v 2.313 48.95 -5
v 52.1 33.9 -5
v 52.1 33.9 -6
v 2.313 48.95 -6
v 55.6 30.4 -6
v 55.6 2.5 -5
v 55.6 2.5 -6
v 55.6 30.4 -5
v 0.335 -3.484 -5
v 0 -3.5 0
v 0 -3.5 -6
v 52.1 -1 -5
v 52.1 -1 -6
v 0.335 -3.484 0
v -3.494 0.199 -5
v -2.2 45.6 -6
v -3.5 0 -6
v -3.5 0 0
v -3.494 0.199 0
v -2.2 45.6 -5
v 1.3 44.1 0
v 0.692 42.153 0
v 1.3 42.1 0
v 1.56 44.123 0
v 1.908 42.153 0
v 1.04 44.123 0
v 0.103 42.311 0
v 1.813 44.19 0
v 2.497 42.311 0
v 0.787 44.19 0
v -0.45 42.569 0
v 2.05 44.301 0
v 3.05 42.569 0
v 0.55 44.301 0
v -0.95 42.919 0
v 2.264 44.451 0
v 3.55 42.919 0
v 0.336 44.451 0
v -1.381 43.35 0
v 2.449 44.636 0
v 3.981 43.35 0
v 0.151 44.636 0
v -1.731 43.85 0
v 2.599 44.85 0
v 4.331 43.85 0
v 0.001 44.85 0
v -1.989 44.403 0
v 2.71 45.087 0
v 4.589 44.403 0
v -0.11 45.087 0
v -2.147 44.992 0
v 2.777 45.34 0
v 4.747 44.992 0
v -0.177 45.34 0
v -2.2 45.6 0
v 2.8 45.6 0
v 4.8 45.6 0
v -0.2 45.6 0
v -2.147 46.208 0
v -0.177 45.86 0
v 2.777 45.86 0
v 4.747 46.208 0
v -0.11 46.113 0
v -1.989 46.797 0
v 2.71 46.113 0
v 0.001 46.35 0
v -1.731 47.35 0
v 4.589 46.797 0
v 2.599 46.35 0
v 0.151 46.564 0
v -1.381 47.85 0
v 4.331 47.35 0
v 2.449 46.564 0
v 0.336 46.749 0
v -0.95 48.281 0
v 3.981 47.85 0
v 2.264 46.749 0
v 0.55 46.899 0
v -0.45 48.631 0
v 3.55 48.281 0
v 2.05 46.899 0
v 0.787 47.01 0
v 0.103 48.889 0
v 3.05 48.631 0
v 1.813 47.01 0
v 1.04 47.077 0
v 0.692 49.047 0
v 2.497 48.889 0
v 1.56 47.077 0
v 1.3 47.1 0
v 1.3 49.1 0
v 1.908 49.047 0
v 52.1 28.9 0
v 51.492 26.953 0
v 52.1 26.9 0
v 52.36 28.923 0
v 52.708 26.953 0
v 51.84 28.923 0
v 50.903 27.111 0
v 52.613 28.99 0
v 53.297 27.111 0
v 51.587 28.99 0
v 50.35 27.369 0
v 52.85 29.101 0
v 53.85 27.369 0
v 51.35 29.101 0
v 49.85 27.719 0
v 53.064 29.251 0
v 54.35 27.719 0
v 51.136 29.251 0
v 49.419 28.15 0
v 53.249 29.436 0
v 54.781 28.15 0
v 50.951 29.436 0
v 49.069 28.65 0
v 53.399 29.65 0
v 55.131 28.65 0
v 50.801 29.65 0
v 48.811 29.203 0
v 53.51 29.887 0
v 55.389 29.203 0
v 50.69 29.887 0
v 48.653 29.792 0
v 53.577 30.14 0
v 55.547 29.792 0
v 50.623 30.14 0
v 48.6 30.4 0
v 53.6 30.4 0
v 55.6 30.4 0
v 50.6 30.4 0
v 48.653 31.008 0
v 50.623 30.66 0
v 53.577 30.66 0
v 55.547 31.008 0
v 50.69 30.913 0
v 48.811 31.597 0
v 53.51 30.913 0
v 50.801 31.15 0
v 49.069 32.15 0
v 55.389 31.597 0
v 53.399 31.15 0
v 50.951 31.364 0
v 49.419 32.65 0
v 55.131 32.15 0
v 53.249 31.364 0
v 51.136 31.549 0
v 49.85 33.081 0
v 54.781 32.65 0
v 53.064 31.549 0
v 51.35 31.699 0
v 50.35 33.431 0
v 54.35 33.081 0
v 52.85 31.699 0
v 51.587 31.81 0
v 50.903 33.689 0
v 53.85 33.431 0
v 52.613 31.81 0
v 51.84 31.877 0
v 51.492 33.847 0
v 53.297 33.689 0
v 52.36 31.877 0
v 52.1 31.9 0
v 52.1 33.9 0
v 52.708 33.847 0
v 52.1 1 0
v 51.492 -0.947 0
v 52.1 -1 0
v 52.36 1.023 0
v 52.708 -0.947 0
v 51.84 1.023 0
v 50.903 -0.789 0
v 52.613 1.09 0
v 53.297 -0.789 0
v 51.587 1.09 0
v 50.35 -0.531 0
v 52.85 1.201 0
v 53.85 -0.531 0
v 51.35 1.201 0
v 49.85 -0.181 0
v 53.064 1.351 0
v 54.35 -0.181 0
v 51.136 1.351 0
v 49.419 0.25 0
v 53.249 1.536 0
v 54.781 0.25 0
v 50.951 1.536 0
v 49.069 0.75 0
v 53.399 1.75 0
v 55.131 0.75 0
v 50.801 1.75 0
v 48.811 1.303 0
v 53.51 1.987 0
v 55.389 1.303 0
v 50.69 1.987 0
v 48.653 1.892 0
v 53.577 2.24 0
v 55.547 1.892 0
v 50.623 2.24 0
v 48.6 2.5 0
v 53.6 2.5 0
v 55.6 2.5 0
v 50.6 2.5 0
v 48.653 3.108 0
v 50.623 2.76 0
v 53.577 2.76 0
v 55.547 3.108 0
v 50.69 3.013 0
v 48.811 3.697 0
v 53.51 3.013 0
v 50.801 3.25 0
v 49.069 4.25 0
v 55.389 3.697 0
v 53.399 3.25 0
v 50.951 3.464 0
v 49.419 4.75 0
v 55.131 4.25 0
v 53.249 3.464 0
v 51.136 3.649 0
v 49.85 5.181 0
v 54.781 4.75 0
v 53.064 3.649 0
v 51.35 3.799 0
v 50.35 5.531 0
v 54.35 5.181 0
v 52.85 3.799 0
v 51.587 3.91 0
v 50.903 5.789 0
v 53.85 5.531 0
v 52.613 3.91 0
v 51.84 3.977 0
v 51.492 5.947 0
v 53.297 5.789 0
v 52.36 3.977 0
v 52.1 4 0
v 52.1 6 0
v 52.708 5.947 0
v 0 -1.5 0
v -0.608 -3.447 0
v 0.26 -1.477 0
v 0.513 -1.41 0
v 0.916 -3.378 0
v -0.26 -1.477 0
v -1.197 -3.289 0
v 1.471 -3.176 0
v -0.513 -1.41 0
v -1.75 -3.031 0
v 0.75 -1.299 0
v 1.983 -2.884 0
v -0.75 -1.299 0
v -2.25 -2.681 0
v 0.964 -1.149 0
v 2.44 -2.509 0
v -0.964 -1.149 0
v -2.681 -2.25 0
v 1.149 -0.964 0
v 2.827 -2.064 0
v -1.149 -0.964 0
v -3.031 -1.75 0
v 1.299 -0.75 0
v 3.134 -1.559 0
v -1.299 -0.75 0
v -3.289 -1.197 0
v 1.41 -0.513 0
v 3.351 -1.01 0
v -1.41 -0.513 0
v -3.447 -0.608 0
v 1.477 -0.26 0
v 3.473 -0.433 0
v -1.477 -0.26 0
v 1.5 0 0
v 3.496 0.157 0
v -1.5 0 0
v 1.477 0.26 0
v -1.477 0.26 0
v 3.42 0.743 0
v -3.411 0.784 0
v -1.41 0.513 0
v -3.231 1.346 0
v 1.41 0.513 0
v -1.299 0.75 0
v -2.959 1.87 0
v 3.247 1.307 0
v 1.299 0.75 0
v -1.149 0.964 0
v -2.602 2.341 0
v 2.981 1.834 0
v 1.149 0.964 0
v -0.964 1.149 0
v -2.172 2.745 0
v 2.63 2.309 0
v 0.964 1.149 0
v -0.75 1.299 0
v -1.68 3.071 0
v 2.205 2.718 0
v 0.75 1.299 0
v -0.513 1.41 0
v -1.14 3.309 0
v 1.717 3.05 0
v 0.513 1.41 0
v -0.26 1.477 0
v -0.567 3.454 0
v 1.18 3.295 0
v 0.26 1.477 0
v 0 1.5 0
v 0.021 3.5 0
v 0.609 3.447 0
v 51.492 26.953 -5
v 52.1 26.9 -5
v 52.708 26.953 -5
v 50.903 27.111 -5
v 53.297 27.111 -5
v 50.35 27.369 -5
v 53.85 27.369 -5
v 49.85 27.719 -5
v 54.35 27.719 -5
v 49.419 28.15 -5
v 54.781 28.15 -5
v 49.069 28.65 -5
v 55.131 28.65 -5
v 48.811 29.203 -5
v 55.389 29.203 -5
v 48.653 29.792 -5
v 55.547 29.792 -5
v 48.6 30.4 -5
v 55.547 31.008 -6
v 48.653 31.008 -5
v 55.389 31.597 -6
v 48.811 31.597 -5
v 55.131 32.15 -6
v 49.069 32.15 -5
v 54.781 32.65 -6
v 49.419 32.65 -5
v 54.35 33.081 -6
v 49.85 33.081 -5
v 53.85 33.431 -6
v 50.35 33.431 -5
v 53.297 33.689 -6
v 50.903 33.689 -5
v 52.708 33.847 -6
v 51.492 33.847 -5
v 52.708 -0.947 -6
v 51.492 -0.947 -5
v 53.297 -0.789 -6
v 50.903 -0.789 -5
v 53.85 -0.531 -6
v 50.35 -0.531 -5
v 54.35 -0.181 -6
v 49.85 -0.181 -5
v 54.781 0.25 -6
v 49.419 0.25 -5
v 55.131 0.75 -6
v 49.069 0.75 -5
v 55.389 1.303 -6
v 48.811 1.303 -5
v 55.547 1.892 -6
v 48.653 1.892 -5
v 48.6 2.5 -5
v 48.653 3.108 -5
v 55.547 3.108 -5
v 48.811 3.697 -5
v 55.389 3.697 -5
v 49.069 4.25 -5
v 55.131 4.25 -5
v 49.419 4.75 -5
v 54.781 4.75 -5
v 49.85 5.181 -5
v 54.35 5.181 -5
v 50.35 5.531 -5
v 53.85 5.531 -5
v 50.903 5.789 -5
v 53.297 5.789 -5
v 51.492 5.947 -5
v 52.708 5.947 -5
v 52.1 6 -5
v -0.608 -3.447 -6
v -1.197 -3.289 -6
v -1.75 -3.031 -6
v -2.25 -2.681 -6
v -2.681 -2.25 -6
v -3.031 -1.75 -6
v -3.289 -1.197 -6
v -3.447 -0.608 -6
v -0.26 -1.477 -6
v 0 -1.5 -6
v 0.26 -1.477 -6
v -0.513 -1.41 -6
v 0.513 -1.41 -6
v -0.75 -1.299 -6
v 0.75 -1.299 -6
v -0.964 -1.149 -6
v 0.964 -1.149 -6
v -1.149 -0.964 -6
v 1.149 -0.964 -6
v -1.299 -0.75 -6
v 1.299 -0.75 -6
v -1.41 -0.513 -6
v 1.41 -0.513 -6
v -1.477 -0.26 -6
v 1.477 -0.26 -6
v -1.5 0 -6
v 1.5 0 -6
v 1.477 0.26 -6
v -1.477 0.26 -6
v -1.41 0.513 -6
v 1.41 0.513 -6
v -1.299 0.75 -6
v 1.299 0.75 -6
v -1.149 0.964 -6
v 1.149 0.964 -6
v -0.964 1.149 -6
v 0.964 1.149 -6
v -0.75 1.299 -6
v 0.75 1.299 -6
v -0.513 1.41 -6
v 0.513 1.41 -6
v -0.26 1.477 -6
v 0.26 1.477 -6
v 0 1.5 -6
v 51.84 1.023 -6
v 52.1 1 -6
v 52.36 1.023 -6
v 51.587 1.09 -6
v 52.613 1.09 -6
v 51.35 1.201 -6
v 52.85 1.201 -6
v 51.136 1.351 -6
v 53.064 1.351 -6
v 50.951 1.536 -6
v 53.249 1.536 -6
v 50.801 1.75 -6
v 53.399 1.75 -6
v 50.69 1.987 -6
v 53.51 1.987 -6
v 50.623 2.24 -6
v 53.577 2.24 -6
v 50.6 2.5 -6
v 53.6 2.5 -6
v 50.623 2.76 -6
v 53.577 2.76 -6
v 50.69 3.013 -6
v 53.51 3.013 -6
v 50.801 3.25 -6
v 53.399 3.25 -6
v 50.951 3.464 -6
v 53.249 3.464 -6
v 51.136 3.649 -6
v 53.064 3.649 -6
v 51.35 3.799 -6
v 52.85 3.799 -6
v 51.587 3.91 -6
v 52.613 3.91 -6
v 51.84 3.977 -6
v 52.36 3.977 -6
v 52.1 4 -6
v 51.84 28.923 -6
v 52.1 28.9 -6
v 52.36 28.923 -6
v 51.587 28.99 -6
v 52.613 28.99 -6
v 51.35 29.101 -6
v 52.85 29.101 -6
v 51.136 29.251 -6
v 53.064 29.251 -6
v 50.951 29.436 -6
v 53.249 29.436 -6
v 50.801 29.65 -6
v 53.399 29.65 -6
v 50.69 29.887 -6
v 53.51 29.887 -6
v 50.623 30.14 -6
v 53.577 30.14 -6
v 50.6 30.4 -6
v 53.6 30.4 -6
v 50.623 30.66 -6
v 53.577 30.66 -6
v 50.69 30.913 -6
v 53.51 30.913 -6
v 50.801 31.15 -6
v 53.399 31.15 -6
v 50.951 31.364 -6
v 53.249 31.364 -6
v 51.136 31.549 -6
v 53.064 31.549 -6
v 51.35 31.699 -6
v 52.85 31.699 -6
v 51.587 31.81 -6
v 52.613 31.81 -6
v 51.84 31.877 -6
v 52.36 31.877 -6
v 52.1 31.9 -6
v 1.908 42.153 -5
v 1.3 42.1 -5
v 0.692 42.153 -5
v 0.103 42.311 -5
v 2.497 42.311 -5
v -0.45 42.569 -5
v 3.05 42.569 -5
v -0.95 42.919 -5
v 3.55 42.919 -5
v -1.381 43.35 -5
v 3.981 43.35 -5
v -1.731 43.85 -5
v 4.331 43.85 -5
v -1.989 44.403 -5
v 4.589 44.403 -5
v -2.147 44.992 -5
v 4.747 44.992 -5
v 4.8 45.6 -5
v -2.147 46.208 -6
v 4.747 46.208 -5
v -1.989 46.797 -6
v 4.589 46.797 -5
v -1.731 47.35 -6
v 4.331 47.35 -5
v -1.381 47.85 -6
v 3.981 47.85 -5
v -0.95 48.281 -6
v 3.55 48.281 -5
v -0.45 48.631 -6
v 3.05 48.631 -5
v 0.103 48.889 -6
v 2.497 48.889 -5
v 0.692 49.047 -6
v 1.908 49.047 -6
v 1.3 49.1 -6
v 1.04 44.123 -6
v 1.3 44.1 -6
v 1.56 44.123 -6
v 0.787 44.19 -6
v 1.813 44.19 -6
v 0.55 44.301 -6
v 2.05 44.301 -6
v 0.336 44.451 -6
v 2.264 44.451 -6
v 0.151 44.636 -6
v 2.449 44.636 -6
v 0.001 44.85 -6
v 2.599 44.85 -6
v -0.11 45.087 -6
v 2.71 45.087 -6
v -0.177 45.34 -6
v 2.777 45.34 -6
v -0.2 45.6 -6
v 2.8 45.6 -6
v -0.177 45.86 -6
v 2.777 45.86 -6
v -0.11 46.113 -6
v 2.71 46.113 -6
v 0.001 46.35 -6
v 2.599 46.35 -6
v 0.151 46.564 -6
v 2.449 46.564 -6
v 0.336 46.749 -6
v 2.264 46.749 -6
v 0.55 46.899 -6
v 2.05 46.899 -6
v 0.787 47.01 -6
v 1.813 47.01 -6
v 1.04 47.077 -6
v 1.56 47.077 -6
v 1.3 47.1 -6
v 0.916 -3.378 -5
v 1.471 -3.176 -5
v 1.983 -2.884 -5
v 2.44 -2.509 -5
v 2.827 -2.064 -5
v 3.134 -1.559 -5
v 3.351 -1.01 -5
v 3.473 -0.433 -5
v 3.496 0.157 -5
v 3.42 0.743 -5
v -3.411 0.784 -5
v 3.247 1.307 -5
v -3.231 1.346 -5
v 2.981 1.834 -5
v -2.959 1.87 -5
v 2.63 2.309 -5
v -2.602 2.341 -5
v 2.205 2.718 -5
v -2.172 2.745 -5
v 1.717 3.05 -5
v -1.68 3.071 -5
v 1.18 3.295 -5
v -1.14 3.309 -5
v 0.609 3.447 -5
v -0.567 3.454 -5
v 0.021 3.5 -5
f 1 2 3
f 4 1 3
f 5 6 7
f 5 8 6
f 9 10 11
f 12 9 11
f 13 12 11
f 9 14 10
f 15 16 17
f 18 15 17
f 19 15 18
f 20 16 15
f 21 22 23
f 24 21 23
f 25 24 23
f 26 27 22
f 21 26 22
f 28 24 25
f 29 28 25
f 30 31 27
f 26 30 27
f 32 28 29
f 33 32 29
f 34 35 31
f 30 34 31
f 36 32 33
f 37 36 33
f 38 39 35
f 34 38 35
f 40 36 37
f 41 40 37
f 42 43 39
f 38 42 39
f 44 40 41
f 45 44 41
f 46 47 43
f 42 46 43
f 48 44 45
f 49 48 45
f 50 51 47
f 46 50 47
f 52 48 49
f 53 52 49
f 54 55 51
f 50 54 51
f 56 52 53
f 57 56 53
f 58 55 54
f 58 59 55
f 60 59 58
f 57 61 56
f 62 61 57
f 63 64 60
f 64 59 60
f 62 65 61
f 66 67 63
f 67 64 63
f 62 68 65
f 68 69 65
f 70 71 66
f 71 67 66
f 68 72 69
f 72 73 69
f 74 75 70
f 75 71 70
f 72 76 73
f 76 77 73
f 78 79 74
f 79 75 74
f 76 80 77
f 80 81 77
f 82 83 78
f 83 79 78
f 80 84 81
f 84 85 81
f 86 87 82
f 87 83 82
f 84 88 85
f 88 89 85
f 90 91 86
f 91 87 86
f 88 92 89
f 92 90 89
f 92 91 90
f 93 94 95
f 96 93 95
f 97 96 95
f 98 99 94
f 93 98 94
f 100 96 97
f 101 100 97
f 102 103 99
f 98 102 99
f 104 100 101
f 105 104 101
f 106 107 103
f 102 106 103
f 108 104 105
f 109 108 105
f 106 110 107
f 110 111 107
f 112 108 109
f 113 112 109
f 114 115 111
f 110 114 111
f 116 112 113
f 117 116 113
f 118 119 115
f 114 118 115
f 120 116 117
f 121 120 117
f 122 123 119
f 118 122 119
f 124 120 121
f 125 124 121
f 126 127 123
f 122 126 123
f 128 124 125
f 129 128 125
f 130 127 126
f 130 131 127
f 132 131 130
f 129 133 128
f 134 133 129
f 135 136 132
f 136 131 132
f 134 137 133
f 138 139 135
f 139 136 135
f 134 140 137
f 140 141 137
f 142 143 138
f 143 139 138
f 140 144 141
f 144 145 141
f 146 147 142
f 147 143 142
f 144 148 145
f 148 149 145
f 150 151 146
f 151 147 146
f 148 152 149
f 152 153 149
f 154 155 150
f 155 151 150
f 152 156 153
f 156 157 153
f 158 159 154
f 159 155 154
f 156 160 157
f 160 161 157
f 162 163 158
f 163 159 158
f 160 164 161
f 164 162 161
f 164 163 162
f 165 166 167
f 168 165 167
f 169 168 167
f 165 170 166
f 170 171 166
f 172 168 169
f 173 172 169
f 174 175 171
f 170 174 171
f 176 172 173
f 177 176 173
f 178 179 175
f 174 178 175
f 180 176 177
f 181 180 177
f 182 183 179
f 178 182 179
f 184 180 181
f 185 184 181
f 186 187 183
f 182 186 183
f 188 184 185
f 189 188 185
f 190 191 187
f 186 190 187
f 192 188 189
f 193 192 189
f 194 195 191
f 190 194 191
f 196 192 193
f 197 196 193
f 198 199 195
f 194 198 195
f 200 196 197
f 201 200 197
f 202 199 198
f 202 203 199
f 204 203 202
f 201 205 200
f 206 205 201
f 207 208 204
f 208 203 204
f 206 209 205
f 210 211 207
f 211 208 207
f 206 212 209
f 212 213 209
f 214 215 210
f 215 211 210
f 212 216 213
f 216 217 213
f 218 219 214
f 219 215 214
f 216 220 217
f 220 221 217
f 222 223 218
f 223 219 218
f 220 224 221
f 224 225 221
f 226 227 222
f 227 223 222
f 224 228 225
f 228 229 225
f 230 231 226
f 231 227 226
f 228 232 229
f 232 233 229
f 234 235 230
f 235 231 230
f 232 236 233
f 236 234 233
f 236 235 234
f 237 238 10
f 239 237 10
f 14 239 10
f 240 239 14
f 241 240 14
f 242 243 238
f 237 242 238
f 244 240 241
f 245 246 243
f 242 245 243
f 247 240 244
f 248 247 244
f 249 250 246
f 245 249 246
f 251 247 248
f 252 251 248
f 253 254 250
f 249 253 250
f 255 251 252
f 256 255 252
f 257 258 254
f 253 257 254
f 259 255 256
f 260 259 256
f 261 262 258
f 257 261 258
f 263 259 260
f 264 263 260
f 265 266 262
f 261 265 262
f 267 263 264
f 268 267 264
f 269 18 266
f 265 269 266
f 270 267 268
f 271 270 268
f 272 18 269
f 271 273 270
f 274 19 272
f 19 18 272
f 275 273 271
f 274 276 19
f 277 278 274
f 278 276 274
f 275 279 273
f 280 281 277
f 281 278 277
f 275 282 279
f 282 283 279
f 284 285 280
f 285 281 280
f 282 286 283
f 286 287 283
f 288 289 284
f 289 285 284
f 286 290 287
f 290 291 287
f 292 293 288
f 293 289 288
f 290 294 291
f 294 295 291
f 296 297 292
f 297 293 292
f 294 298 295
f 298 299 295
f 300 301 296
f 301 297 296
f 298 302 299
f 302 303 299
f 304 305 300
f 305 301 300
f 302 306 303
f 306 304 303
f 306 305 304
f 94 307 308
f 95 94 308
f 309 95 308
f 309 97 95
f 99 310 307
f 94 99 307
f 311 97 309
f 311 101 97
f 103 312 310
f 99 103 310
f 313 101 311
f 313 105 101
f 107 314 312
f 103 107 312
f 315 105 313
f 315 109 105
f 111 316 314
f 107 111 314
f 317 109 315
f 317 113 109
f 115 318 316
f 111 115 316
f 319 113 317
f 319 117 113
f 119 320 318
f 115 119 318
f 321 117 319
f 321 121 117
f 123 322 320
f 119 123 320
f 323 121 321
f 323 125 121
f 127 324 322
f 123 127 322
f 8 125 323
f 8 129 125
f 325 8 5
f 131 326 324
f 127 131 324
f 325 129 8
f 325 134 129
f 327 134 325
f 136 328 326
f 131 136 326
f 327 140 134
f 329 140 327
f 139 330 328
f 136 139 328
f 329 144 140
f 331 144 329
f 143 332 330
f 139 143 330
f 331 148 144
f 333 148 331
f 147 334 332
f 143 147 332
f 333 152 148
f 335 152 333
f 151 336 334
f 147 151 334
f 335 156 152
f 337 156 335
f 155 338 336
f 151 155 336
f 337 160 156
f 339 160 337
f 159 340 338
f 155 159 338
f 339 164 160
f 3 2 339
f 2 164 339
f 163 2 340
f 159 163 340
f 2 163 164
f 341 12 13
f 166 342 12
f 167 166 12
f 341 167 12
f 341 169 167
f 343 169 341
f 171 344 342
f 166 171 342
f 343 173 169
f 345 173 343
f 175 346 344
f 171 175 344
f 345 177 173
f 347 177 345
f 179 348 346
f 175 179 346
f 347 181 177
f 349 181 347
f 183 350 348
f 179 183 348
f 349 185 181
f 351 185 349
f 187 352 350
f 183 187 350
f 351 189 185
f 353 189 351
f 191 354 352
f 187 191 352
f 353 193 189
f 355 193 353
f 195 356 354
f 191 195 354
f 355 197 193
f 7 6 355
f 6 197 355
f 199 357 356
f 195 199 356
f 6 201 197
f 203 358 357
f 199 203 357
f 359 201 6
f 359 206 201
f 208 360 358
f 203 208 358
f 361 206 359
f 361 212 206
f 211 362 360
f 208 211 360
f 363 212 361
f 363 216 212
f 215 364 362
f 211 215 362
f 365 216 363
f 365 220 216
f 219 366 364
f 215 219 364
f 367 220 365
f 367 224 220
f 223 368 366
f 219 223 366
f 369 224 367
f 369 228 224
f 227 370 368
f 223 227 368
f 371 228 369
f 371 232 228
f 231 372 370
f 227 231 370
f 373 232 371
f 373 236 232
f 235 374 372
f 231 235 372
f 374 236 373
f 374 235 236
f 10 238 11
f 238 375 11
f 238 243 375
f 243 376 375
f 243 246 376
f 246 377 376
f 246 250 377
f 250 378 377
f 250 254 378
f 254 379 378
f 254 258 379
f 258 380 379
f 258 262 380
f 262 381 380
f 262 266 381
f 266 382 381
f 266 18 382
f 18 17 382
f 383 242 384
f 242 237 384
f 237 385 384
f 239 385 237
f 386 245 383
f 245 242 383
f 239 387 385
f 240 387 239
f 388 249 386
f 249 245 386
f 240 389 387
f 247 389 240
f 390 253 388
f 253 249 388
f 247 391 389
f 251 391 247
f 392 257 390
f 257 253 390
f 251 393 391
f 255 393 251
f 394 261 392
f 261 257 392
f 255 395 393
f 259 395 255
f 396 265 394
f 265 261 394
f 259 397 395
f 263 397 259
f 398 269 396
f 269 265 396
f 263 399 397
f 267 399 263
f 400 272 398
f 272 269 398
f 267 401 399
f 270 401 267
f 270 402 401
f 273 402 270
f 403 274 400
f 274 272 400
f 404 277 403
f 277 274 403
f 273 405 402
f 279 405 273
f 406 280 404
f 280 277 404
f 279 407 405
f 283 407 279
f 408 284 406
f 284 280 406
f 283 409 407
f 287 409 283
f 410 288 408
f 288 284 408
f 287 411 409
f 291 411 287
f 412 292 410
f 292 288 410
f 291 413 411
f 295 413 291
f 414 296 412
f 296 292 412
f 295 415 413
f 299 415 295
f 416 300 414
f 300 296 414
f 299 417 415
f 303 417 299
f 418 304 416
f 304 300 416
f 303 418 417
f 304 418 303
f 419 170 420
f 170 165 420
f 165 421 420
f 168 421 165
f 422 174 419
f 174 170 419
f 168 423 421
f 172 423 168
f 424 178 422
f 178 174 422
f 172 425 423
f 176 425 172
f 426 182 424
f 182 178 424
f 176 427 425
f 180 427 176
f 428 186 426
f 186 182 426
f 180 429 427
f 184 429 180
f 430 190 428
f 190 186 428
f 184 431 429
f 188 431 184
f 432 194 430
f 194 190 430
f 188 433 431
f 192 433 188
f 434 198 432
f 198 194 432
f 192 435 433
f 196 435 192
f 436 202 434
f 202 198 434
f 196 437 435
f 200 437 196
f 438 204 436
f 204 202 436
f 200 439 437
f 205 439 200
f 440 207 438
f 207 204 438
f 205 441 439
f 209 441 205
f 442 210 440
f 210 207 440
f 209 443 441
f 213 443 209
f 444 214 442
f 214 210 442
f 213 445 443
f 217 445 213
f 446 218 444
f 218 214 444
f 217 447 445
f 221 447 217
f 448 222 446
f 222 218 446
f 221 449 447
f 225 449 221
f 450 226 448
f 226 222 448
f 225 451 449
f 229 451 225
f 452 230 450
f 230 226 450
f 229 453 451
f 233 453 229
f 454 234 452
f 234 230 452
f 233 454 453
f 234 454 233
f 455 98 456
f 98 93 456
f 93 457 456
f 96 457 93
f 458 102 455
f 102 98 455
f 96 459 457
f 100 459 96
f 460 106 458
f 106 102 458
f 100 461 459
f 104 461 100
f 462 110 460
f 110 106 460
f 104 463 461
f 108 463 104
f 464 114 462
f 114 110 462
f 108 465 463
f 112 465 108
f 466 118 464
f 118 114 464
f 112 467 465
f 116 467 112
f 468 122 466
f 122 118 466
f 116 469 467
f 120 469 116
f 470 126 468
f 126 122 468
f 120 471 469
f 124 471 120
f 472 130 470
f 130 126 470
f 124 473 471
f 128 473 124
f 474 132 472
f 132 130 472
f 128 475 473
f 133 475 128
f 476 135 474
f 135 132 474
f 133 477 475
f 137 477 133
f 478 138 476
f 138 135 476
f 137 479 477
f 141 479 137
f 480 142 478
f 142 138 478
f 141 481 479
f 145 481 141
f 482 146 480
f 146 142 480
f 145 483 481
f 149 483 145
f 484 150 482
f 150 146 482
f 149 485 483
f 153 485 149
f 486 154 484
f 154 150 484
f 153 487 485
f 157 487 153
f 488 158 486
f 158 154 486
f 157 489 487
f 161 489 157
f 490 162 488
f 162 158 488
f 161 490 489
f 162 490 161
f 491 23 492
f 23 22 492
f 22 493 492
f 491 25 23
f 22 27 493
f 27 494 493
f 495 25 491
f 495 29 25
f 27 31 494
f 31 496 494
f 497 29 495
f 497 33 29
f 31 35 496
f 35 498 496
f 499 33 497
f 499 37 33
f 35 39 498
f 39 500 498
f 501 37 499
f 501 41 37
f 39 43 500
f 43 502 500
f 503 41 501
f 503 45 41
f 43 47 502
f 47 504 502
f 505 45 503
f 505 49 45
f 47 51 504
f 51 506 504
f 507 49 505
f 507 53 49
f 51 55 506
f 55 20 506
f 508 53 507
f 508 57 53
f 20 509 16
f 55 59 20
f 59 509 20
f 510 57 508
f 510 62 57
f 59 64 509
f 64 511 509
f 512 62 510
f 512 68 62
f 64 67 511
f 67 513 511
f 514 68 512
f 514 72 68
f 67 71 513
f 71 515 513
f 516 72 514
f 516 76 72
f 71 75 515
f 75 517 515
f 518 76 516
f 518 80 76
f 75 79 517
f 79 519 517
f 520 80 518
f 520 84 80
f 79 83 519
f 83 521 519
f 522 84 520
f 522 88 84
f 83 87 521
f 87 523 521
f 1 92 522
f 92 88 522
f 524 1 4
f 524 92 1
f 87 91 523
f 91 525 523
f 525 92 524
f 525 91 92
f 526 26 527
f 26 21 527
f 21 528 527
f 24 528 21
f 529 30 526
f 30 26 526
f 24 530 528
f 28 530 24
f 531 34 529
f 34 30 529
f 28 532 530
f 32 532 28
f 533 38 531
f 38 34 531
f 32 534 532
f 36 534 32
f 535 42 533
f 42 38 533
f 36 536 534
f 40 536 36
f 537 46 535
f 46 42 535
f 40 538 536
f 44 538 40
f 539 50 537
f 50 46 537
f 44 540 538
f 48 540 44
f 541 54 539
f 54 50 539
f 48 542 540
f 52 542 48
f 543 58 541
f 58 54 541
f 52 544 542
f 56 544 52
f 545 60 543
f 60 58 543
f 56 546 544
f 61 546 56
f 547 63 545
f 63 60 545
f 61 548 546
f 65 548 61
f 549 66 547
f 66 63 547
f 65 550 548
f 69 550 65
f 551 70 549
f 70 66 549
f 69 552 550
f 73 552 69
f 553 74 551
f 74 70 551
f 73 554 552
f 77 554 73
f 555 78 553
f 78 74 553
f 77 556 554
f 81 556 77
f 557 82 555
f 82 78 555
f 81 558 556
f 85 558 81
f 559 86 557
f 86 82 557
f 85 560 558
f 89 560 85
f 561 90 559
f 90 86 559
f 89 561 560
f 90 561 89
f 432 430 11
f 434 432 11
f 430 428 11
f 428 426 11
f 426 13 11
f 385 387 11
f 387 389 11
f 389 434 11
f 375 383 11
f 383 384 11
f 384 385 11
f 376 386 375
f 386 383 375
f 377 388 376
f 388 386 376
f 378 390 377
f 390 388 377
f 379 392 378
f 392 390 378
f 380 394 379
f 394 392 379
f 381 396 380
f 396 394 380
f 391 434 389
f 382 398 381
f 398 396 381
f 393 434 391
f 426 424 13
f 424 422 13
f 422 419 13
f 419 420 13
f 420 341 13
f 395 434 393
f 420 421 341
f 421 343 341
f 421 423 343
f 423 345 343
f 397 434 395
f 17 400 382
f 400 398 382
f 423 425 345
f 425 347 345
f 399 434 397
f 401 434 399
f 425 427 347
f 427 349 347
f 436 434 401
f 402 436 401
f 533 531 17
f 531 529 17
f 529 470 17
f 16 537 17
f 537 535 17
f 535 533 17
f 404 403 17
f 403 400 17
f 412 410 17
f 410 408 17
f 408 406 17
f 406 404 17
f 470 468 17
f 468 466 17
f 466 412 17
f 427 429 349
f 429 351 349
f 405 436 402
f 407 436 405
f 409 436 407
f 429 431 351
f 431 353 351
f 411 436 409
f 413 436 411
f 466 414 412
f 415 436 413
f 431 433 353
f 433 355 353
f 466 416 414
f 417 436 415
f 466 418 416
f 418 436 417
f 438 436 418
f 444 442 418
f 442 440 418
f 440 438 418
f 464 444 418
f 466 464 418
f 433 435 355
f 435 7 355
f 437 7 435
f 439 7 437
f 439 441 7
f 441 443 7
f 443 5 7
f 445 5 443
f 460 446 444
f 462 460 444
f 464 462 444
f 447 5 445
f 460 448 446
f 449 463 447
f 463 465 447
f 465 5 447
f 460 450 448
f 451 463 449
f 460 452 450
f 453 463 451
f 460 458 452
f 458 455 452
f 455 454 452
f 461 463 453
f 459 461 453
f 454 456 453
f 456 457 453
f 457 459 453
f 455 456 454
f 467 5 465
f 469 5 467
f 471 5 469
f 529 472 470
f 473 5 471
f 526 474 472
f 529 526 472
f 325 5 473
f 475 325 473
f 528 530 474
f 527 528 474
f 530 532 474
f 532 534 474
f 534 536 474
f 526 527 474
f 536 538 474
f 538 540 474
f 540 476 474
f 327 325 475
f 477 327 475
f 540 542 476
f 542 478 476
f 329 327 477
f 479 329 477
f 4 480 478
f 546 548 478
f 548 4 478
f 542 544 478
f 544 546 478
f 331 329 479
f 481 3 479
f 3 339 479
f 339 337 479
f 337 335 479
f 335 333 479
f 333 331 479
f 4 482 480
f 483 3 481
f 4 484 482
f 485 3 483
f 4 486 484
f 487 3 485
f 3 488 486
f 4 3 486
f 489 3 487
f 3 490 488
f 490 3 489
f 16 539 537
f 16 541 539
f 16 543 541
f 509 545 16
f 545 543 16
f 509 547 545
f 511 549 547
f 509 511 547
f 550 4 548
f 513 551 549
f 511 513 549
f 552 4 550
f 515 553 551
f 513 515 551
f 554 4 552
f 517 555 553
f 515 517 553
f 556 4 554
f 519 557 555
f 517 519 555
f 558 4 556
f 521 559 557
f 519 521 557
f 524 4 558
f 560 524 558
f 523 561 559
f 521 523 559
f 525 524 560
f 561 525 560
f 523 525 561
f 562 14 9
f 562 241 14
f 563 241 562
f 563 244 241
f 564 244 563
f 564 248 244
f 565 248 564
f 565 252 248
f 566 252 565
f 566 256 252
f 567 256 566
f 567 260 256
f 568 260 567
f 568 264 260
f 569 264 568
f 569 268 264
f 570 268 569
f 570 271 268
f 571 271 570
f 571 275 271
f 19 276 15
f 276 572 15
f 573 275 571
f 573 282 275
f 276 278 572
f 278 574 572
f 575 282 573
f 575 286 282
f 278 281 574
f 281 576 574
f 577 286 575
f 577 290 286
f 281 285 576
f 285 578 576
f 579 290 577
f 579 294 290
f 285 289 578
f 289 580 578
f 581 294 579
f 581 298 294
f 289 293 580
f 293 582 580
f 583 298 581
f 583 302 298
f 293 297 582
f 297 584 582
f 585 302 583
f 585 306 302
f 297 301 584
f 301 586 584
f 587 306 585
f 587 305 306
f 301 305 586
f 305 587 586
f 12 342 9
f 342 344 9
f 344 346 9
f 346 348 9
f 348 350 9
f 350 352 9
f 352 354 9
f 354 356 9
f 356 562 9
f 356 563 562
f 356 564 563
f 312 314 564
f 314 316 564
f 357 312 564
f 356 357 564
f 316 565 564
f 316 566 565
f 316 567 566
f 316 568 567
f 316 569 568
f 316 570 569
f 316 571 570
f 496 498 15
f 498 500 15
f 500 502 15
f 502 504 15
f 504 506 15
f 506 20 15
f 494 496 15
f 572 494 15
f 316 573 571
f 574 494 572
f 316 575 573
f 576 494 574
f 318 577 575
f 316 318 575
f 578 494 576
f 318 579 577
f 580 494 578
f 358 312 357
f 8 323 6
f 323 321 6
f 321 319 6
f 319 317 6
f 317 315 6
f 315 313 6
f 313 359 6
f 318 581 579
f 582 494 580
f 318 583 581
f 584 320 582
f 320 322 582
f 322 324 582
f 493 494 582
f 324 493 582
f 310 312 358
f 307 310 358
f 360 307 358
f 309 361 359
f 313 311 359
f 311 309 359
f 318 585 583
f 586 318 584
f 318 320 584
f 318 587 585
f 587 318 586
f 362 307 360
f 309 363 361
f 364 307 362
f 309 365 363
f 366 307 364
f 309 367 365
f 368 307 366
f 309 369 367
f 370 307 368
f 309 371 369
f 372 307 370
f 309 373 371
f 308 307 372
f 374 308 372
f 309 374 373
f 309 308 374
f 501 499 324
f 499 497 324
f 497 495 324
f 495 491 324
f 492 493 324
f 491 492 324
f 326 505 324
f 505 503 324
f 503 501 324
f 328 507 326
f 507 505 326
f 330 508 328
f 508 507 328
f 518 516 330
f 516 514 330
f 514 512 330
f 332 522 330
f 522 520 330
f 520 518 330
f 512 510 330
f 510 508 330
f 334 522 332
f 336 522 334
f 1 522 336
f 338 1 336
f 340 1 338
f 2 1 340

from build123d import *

# Parameters (mm, degrees)
SKETCH1_R           = 3.5
SKETCH1_R_2         = 1.5
BOSS_EXTRUDE2_DEPTH = 6
CUT_EXTRUDE2_DEPTH  = 5


with BuildPart() as part:
    # Sketch1 → Boss-Extrude2 (new body)
    # profile 1 of 5: a face of its own
    with BuildSketch(Plane.XY):
        with BuildLine():
            ThreePointArc((4.8, 45.6), (1.3, 42.1), (-2.2, 45.6))
            Line((-2.2, 45.6), (-3.49431537, 0.199399342))
            ThreePointArc((-3.49431537, 0.199399342), (0.099740178, 3.498578554), (3.5, 0))
            ThreePointArc((3.5, 0), (2.590648868, -2.353409961), (0.33512089, -3.483919343))
            Line((0.33512089, -3.483919343), (52.1, -1))
            ThreePointArc((52.1, -1), (49.625126266, 4.974873734), (55.6, 2.5))
            Line((55.6, 2.5), (55.6, 30.4))
            ThreePointArc((55.6, 30.4), (49.625126266, 27.925126266), (52.1, 33.9))
            Line((52.1, 33.9), (2.312759359, 48.950271404))
            ThreePointArc((2.312759359, 48.950271404), (4.110218653, 47.686305616), (4.8, 45.6))
        make_face()
    # profile 2 of 5: a face of its own
    with BuildSketch(Plane.XY):
        with Locations((1.3, 45.6)):
            Circle(SKETCH1_R)
        with Locations((1.3, 45.6)):
            Circle(SKETCH1_R_2, mode=Mode.SUBTRACT)
    # profile 3 of 5: a face of its own
    with BuildSketch(Plane.XY):
        with Locations((52.1, 30.4)):
            Circle(SKETCH1_R)
        with Locations((52.1, 30.4)):
            Circle(SKETCH1_R_2, mode=Mode.SUBTRACT)
    # profile 4 of 5: a face of its own
    with BuildSketch(Plane.XY):
        with Locations((52.1, 2.5)):
            Circle(SKETCH1_R)
        with Locations((52.1, 2.5)):
            Circle(SKETCH1_R_2, mode=Mode.SUBTRACT)
    # profile 5 of 5: a face of its own
    with BuildSketch(Plane.XY):
        with BuildLine():
            ThreePointArc((3.5, 0), (0.099740178, 3.498578554), (-3.49431537, 0.199399342))
            Line((-3.49431537, 0.199399342), (-3.5, 0))
            ThreePointArc((-3.5, 0), (-2.474873734, -2.474873734), (0, -3.5))
            Line((0, -3.5), (0.33512089, -3.483919343))
            ThreePointArc((0.33512089, -3.483919343), (2.590648868, -2.353409961), (3.5, 0))
        make_face()
        Circle(SKETCH1_R_2, mode=Mode.SUBTRACT)
    extrude(amount=-BOSS_EXTRUDE2_DEPTH)

    # Sketch1<3> → Cut-Extrude2 (cut)
    with BuildSketch(Plane.XY):
        with BuildLine():
            ThreePointArc((4.8, 45.6), (1.3, 42.1), (-2.2, 45.6))
            Line((-2.2, 45.6), (-3.49431537, 0.199399342))
            ThreePointArc((-3.49431537, 0.199399342), (0.099740178, 3.498578554), (3.5, 0))
            ThreePointArc((3.5, 0), (2.590648868, -2.353409961), (0.33512089, -3.483919343))
            Line((0.33512089, -3.483919343), (52.1, -1))
            ThreePointArc((52.1, -1), (49.625126266, 4.974873734), (55.6, 2.5))
            Line((55.6, 2.5), (55.6, 30.4))
            ThreePointArc((55.6, 30.4), (49.625126266, 27.925126266), (52.1, 33.9))
            Line((52.1, 33.9), (2.312759359, 48.950271404))
            ThreePointArc((2.312759359, 48.950271404), (4.110218653, 47.686305616), (4.8, 45.6))
        make_face()
    extrude(amount=-CUT_EXTRUDE2_DEPTH, mode=Mode.SUBTRACT)


solid = part.part
